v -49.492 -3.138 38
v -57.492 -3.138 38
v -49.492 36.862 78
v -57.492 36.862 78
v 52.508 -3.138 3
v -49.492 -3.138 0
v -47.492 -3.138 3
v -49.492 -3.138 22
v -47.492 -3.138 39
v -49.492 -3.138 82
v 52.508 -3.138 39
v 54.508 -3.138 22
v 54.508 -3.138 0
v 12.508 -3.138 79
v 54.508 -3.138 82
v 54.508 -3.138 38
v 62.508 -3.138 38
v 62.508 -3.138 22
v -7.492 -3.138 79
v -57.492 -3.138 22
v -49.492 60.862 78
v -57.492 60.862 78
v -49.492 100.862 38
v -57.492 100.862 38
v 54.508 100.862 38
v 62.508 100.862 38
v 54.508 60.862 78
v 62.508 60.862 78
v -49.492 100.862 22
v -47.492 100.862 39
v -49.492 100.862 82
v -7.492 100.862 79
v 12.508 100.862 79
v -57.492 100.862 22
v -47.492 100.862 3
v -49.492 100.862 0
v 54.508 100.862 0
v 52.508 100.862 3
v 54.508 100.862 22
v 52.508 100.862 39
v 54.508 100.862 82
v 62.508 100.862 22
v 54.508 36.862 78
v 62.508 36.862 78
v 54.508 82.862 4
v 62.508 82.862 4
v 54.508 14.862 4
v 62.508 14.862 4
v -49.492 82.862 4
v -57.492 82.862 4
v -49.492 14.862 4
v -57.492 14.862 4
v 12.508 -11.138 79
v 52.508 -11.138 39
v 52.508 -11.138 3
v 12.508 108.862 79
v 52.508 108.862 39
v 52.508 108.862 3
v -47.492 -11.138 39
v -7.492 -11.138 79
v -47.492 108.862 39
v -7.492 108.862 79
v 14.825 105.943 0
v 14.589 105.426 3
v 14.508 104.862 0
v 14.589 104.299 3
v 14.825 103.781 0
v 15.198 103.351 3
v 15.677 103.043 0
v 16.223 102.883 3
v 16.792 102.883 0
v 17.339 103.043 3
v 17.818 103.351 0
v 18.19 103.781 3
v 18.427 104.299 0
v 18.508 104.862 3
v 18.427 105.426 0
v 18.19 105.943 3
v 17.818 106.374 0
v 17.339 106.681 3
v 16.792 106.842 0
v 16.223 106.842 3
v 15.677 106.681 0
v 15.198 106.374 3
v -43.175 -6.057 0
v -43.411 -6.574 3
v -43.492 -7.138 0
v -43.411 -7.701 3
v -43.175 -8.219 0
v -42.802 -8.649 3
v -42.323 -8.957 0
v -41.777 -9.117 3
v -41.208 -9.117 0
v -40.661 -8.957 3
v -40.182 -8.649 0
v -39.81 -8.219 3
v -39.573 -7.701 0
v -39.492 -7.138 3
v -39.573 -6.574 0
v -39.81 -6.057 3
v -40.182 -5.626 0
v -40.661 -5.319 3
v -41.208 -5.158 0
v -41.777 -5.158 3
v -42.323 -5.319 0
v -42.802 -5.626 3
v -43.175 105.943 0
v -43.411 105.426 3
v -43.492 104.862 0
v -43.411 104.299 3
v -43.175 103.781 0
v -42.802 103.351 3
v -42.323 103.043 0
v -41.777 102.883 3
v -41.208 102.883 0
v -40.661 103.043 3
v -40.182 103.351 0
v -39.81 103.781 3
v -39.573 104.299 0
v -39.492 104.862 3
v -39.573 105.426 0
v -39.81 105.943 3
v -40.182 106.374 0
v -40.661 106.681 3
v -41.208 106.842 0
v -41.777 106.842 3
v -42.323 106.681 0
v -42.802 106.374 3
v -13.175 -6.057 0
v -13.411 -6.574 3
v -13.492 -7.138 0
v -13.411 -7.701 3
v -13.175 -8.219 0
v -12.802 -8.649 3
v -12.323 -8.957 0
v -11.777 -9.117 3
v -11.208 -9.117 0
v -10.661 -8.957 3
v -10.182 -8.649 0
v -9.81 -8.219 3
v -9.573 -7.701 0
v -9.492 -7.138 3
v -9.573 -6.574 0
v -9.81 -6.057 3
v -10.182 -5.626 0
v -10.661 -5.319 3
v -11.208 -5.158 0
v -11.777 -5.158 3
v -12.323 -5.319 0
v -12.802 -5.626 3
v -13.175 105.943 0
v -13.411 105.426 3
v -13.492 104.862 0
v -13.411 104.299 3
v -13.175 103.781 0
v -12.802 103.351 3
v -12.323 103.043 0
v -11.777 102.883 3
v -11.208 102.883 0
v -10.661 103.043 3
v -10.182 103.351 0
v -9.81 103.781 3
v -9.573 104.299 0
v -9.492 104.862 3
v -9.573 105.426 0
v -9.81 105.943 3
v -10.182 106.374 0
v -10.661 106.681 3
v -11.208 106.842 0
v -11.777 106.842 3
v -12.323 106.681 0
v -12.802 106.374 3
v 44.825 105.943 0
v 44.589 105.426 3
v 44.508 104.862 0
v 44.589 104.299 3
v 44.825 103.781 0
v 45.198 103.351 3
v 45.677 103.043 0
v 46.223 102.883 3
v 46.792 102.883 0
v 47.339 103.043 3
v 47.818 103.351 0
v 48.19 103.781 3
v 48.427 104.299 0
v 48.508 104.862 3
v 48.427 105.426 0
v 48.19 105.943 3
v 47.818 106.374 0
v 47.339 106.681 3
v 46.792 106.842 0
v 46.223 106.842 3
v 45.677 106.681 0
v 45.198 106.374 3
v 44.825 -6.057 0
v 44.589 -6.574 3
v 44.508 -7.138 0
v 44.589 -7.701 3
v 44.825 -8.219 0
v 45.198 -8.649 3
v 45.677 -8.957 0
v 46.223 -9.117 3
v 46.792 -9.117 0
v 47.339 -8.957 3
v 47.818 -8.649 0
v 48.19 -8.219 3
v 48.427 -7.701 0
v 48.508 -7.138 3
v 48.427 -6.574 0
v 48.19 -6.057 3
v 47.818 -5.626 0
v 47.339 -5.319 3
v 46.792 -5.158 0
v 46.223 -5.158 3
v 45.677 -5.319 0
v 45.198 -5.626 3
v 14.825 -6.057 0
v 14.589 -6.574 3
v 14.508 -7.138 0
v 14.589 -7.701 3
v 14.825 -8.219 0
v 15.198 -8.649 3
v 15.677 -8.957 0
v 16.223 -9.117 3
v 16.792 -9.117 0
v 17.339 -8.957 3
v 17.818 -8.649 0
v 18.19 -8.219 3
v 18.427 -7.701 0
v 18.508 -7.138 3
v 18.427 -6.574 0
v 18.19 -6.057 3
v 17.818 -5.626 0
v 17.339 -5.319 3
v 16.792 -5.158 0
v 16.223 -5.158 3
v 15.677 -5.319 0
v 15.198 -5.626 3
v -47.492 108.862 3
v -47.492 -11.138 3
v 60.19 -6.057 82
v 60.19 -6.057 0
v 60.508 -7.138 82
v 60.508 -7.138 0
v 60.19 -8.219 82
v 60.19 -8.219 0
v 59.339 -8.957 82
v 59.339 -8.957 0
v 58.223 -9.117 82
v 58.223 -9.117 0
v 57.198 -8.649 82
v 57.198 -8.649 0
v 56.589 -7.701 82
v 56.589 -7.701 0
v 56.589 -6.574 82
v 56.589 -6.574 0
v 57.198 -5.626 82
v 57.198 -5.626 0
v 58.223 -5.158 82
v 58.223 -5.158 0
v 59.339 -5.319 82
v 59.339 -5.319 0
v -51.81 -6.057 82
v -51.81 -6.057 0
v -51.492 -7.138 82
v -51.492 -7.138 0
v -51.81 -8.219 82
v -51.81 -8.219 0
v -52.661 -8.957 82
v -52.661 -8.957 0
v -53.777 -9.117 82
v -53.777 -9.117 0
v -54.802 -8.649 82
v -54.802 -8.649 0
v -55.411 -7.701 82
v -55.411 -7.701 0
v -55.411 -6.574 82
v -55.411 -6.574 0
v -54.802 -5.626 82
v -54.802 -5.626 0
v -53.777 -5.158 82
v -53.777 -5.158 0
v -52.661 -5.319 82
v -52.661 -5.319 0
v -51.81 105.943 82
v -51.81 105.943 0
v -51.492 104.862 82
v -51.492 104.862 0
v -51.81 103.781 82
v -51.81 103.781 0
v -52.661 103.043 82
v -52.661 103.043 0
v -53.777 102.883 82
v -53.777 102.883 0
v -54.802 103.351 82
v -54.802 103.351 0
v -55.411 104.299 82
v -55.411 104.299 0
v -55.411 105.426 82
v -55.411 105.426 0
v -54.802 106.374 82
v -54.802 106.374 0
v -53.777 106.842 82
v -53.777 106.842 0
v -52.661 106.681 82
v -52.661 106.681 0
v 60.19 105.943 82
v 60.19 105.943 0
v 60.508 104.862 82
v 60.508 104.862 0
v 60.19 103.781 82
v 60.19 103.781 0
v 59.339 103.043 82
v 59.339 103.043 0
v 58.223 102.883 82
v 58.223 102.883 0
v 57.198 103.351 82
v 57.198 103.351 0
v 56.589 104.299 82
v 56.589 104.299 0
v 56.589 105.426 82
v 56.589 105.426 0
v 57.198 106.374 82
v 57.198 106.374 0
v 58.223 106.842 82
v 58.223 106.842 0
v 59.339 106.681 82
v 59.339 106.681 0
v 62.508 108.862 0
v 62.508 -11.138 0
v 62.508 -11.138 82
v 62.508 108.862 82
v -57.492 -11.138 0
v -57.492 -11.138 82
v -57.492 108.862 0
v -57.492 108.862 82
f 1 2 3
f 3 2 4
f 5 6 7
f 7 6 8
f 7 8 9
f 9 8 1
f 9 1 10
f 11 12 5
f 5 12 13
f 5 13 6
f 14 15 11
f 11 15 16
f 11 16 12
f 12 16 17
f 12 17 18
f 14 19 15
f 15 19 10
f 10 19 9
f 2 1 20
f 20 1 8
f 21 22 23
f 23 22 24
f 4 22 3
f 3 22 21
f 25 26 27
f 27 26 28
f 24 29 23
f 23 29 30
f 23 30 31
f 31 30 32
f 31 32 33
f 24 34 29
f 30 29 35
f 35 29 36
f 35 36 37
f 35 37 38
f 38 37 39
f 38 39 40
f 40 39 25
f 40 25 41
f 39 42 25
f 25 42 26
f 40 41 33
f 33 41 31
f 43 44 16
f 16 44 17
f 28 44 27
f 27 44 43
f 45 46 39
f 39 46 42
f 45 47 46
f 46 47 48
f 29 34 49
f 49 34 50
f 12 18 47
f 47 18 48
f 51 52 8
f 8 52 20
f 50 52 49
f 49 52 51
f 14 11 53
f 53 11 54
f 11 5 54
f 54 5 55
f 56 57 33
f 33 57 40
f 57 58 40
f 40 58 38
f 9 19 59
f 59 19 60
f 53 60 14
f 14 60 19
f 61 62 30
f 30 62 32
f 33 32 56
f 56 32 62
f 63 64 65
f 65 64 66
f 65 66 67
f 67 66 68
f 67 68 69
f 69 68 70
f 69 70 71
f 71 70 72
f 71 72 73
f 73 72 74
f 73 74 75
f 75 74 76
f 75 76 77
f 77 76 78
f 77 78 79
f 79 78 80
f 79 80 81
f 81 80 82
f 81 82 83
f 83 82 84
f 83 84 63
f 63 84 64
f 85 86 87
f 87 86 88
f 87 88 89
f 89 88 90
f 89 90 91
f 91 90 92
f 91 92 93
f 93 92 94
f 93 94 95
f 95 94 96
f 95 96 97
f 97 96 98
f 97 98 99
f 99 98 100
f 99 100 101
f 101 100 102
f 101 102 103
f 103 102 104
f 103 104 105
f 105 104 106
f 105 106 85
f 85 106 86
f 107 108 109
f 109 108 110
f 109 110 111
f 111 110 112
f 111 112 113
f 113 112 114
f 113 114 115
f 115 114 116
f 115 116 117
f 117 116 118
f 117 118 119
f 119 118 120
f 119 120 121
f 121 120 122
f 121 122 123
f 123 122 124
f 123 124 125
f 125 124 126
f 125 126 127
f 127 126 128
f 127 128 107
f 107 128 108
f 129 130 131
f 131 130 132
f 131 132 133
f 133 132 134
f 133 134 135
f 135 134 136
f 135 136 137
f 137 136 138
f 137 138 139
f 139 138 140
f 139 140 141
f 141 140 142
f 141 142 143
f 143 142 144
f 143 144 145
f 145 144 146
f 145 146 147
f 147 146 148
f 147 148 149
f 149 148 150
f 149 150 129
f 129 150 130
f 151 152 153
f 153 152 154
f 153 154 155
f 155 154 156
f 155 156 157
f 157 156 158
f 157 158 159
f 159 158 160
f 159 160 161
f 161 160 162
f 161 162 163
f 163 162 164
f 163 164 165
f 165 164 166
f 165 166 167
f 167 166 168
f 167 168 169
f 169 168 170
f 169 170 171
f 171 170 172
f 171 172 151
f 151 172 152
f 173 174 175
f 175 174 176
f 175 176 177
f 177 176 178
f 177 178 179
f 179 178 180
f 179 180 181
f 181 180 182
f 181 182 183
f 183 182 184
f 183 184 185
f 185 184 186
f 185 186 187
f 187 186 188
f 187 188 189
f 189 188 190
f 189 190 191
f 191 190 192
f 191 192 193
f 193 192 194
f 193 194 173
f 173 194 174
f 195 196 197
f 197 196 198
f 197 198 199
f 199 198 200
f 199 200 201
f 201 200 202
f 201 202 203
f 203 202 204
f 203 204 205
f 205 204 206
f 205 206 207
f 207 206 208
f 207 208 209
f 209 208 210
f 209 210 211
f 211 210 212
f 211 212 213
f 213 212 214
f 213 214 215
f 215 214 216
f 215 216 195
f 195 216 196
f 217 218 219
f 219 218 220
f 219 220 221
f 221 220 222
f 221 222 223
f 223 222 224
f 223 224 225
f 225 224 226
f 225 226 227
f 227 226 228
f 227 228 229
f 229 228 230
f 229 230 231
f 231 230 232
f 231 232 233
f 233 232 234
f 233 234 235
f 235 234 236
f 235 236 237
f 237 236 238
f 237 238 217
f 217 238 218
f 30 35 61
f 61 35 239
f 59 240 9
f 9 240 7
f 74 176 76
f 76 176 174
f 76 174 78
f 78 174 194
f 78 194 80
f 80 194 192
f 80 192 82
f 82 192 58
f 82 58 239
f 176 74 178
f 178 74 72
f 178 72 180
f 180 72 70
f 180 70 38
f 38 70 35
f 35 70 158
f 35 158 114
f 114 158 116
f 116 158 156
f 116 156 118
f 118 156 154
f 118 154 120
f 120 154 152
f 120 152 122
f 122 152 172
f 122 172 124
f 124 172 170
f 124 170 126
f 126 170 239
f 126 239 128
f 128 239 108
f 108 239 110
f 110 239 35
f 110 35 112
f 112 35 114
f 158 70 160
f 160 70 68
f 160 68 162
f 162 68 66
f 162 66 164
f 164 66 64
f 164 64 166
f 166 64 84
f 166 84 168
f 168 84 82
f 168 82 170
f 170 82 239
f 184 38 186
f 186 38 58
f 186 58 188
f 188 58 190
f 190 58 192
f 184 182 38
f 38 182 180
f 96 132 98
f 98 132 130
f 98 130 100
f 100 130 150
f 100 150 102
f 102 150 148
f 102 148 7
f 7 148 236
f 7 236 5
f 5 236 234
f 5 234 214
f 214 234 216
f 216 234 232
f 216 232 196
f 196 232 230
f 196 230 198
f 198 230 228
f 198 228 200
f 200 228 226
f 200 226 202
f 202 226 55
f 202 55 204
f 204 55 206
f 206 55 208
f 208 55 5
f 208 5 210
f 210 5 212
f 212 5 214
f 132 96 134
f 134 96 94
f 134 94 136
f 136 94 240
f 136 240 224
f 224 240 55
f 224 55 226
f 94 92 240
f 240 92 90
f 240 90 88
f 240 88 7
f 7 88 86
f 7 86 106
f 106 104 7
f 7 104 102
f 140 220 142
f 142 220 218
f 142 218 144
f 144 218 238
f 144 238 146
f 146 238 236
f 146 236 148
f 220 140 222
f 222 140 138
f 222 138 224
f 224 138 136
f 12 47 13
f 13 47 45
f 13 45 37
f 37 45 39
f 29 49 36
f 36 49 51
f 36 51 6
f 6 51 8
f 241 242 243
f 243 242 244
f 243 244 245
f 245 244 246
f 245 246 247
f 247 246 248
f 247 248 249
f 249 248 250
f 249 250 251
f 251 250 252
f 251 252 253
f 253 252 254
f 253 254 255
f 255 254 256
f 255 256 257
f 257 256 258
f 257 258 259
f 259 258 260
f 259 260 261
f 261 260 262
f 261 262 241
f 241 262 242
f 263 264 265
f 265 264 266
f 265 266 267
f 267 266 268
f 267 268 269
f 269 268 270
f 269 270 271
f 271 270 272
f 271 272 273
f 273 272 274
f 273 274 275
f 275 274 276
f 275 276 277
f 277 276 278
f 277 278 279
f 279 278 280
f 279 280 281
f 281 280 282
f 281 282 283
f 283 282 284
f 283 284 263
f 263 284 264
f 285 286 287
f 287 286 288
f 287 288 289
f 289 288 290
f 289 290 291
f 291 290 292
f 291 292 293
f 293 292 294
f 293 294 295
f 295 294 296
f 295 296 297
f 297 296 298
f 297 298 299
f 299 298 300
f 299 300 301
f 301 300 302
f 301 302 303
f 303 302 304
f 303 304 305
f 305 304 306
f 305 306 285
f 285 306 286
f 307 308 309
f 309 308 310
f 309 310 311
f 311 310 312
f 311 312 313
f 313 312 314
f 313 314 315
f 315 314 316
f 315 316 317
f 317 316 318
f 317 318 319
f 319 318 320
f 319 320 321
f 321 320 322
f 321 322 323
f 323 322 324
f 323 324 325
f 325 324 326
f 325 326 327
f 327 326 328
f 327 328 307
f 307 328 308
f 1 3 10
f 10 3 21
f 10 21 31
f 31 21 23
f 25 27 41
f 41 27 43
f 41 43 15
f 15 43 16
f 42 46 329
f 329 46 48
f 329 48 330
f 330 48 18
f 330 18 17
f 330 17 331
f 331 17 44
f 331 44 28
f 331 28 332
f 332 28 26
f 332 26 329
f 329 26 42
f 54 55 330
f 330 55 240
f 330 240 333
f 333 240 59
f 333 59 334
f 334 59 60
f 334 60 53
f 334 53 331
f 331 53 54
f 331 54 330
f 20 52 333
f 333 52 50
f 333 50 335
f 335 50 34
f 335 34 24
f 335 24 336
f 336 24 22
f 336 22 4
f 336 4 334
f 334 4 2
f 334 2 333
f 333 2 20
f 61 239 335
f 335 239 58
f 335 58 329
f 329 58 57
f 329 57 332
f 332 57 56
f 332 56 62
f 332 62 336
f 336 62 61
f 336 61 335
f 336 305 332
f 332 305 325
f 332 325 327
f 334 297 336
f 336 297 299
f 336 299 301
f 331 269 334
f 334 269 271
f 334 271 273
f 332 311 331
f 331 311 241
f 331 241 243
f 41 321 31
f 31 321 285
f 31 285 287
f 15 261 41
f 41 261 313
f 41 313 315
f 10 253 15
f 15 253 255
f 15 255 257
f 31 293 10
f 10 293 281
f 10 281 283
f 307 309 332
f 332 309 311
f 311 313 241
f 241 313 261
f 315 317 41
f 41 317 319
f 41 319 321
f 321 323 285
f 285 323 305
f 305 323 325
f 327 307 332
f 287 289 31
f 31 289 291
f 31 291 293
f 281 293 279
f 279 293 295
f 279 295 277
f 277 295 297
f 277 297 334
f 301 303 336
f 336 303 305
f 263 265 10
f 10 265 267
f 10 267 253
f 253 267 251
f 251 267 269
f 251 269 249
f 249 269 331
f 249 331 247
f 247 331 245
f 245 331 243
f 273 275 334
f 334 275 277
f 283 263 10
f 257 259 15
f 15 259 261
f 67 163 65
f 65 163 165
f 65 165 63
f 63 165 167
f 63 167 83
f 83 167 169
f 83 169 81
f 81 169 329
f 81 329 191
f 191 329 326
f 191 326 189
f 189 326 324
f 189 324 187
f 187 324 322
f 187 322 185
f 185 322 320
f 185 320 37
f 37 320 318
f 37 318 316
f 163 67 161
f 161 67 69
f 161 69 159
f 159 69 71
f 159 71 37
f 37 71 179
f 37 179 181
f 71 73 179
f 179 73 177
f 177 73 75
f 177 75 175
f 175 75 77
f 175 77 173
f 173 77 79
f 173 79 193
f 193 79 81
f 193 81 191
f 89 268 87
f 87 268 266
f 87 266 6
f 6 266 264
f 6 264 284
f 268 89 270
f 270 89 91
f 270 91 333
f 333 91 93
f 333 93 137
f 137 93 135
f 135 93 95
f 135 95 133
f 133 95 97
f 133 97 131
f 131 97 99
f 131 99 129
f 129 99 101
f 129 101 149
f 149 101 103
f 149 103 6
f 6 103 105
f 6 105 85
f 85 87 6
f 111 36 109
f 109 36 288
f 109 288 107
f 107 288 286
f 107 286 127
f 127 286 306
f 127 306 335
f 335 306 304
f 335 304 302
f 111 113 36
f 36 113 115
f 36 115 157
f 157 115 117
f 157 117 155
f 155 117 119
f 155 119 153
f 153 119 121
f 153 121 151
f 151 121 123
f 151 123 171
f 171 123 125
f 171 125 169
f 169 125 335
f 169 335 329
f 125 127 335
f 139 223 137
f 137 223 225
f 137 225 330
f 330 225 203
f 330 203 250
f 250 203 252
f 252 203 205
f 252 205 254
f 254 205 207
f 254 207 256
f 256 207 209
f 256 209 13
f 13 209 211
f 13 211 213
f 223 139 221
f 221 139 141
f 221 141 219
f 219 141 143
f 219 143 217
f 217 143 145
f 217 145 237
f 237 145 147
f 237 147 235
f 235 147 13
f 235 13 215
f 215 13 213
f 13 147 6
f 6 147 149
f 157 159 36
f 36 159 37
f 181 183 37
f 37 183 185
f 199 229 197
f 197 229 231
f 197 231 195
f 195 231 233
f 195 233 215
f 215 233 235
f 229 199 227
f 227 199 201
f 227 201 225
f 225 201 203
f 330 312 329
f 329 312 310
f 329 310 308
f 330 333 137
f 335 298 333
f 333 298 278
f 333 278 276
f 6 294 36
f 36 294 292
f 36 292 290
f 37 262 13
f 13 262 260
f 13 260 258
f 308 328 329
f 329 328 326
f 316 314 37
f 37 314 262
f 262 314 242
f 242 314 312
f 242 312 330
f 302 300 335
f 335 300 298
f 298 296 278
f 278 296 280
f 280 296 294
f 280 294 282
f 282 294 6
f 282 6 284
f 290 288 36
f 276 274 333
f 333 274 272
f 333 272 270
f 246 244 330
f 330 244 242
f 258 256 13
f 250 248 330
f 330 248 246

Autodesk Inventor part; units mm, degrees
ref_plane "YZ Plane" through (0, 0, 0) normal (1, 0, 0) x (0, 1, 0)
ref_plane "XZ Plane" through (0, 0, 0) normal (0, 1, 0) x (-1, 0, 0)
ref_plane "XY Plane" through (0, 0, 0) normal (0, 0, 1) x (1, 0, 0)
ref_plane "Work Plane1" through (0, 0, 0) normal (0, 0, 1) x (1, 0, 0)
sketch "Sketch1" plane through (0, 0, 0) normal (0, 0, 1) x (1, 0, 0)
  line L0 (62.5078, -11.1378) -> (-57.4922, -11.1378)
  line L1 (-57.4922, -11.1378) -> (-57.4922, 108.8622)
  line L2 (-57.4922, 108.8622) -> (62.5078, 108.8622)
  line L3 (62.5078, 108.8622) -> (62.5078, -11.1378)
  line L4 (-57.4922, -11.1378) -> (-49.4922, -11.1378)
  line L5 (-49.4922, -11.1378) -> (-49.4922, -3.1378)
  line L6 (-49.4922, -3.1378) -> (-57.4922, -3.1378)
  line L7 (-57.4922, -3.1378) -> (-57.4922, -11.1378)
  line L8 (-57.4922, 108.8622) -> (-49.4922, 108.8622)
  line L9 (-49.4922, 108.8622) -> (-49.4922, 100.8622)
  line L10 (-49.4922, 100.8622) -> (-57.4922, 100.8622)
  line L11 (-57.4922, 100.8622) -> (-57.4922, 108.8622)
  line L12 (62.5078, -11.1378) -> (54.5078, -11.1378)
  line L13 (54.5078, -11.1378) -> (54.5078, -3.1378)
  line L14 (54.5078, -3.1378) -> (62.5078, -3.1378)
  line L15 (62.5078, -3.1378) -> (62.5078, -11.1378)
  line L16 (62.5078, 108.8622) -> (54.5078, 108.8622)
  line L17 (54.5078, 108.8622) -> (54.5078, 100.8622)
  line L18 (54.5078, 100.8622) -> (62.5078, 100.8622)
  line L19 (62.5078, 100.8622) -> (62.5078, 108.8622)
  circle A0 centre (-53.4922, -7.1378) radius 2
  circle A1 centre (-53.4922, 104.8622) radius 2
  circle A2 centre (58.5078, -7.1378) radius 2
  circle A3 centre (58.5078, 104.8622) radius 2
  line L20 (-49.4922, -3.1378) -> (54.5078, -3.1378)
  line L21 (54.5078, -3.1378) -> (54.5078, 100.8622)
  line L22 (54.5078, 100.8622) -> (-49.4922, 100.8622)
  line L23 (-49.4922, 100.8622) -> (-49.4922, -3.1378)
  point P0 (0, 0)
  point P1 (54.5078, -3.1378)
  point P2 (-49.4922, -3.1378)
  point P3 (-49.4922, -3.1378)
  point P4 (54.5078, 100.8622)
  point P5 (54.5078, 100.8622)
  point P6 (54.5078, -3.1378)
  dimension "d0" = 120
  dimension "d1" = 120
  dimension "d2" = 8
  dimension "d3" = 8
  dimension "d4" = 8
  dimension "d5" = 8
  dimension "d6" = 8
  dimension "d7" = 8
  dimension "d8" = 8
  dimension "d9" = 8
  dimension "d10" = 4
  dimension "d11" = 4
  dimension "d12" = 4
  dimension "d13" = 4
  dimension "d14" = 4
  dimension "d15" = 4
  dimension "d16" = 4
  dimension "d17" = 4
  dimension "d18" = 4
  dimension "d19" = 4
  dimension "d20" = 4
  dimension "d21" = 4
  dimension "d22" = 8
  dimension "d23" = 8
  dimension "d24" = 8
  dimension "d25" = 8
extrude "Extrusion1" add sketch "Sketch1" along normal blind 82 contours L0 L13 L14 L3 | L0 L5 L20 L13 | L14 L21 L18 L3 | L0 L1 L6 L5 | L18 L17 L2 L3 | L6 L1 L10 L23 | L22 L9 L2 L17 | L10 L1 L2 L9
sketch "Sketch2" plane through (62.5078, -11.1378, 0) normal (1, 0, 0) x (0, 0, -1)
  line L0 (-78, 8) -> (-4, 8)
  line L1 (-4, 8) -> (-4, 112)
  line L2 (-4, 112) -> (-78, 112)
  line L3 (-78, 112) -> (-78, 8)
  line L4 (0, 120) -> (-82, 120) projected
  line L5 (-82, 0) -> (-82, 120) projected
  line L6 (0, 0) -> (0, 120) projected
  line L7 (0, 0) -> (-82, 0) projected
  point P0 (0, 11.1378)
  dimension "d30" = 8
  dimension "d31" = 4
  dimension "d67" = 8
  dimension "d68" = 4
extrude "Extrusion2" cut sketch "Sketch2" against normal blind 160 contours L3 L2 L1 L0
sketch "Sketch3" plane through (-57.4922, 108.8622, 0) normal (0, 1, 0) x (1, 0, 0)
  line L0 (110, -79) -> (10, -79)
  line L1 (10, -79) -> (10, -3)
  line L2 (10, -3) -> (110, -3)
  line L3 (110, -3) -> (110, -79)
  line L4 (0, 0) -> (0, -82) projected
  line L5 (120, 0) -> (120, -82) projected
  line L6 (120, -82) -> (0, -82) projected
  line L7 (120, 0) -> (0, 0) projected
  point P0 (57.4922, 0)
  dimension "d38" = 10
  dimension "d39" = 10
  dimension "d40" = 3
  dimension "d41" = 3
extrude "Extrusion3" cut sketch "Sketch3" against normal blind 160 contours L0 L1 L2 L3
sketch "Sketch4" plane through (-47.4922, -3.1378, 3) normal (0, 0, 1) x (1, 0, 0)
  circle A0 centre (94, 108) radius 2
  circle A1 centre (6, 108) radius 2
  circle A2 centre (6, -4) radius 2
  circle A3 centre (94, -4) radius 2
  line L0 (100, -8) -> (0, -8) projected
  line L1 (110, -8) -> (110, 112) projected
  line L2 (-10, 112) -> (-10, -8) projected
  line L3 (110, 112) -> (-10, 112) projected
  circle A4 centre (64, 108) radius 2
  circle A5 centre (64, -4) radius 2
  line L4 (100, 0) -> (100, -8) projected
  circle A6 centre (36, -4) radius 2
  circle A7 centre (36, 108) radius 2
  line L5 (100, 112) -> (100, 104) projected
  line L6 (0, 112) -> (0, 104) projected
  line L7 (0, 0) -> (0, -8) projected
  point P0 (47.4922, 3.1378)
  dimension "d47" = 4
  dimension "d48" = 4
  dimension "d49" = 4
  dimension "d50" = 4
  dimension "d51" = 4
  dimension "d52" = 16
  dimension "d53" = 4
  dimension "d54" = 16
  dimension "d55" = 16
  dimension "d56" = 16
  dimension "d57" = 4
  dimension "d58" = 4
  dimension "d159" = 4
  dimension "d161" = 4
  dimension "d162" = 4
  dimension "d163" = 4
  dimension "d165" = 4
  dimension "d166" = 4
  dimension "d169" = 4
  dimension "d170" = 4
  dimension "d171" = 46
  dimension "d172" = 46
  dimension "d173" = 46
  dimension "d174" = 46
extrude "Extrusion4" cut sketch "Sketch4" against normal through all
chamfer "Chamfer3" distance 40 angle 45 4 edges at (-47.4922, 104.8622, 79) (-47.4922, -7.1378, 79) (52.5078, 104.8622, 79) (52.5078, -7.1378, 79)
chamfer "Chamfer17" distance 18 angle 45 4 edges at (-53.4922, -3.1378, 4) (58.5078, -3.1378, 4) (-53.4922, 100.8622, 4) (58.5078, 100.8622, 4)
chamfer "Chamfer18" distance 40 angle 45 4 edges at (58.5078, -3.1378, 78) (58.5078, 100.8622, 78) (-53.4922, 100.8622, 78) (-53.4922, -3.1378, 78)
equation "\"d25\" = d9"
equation "\"d54\" = d52"
equation "\"d55\" = d52"
equation "\"d56\" = d52"
properties part number "160mm_shunt_box"
